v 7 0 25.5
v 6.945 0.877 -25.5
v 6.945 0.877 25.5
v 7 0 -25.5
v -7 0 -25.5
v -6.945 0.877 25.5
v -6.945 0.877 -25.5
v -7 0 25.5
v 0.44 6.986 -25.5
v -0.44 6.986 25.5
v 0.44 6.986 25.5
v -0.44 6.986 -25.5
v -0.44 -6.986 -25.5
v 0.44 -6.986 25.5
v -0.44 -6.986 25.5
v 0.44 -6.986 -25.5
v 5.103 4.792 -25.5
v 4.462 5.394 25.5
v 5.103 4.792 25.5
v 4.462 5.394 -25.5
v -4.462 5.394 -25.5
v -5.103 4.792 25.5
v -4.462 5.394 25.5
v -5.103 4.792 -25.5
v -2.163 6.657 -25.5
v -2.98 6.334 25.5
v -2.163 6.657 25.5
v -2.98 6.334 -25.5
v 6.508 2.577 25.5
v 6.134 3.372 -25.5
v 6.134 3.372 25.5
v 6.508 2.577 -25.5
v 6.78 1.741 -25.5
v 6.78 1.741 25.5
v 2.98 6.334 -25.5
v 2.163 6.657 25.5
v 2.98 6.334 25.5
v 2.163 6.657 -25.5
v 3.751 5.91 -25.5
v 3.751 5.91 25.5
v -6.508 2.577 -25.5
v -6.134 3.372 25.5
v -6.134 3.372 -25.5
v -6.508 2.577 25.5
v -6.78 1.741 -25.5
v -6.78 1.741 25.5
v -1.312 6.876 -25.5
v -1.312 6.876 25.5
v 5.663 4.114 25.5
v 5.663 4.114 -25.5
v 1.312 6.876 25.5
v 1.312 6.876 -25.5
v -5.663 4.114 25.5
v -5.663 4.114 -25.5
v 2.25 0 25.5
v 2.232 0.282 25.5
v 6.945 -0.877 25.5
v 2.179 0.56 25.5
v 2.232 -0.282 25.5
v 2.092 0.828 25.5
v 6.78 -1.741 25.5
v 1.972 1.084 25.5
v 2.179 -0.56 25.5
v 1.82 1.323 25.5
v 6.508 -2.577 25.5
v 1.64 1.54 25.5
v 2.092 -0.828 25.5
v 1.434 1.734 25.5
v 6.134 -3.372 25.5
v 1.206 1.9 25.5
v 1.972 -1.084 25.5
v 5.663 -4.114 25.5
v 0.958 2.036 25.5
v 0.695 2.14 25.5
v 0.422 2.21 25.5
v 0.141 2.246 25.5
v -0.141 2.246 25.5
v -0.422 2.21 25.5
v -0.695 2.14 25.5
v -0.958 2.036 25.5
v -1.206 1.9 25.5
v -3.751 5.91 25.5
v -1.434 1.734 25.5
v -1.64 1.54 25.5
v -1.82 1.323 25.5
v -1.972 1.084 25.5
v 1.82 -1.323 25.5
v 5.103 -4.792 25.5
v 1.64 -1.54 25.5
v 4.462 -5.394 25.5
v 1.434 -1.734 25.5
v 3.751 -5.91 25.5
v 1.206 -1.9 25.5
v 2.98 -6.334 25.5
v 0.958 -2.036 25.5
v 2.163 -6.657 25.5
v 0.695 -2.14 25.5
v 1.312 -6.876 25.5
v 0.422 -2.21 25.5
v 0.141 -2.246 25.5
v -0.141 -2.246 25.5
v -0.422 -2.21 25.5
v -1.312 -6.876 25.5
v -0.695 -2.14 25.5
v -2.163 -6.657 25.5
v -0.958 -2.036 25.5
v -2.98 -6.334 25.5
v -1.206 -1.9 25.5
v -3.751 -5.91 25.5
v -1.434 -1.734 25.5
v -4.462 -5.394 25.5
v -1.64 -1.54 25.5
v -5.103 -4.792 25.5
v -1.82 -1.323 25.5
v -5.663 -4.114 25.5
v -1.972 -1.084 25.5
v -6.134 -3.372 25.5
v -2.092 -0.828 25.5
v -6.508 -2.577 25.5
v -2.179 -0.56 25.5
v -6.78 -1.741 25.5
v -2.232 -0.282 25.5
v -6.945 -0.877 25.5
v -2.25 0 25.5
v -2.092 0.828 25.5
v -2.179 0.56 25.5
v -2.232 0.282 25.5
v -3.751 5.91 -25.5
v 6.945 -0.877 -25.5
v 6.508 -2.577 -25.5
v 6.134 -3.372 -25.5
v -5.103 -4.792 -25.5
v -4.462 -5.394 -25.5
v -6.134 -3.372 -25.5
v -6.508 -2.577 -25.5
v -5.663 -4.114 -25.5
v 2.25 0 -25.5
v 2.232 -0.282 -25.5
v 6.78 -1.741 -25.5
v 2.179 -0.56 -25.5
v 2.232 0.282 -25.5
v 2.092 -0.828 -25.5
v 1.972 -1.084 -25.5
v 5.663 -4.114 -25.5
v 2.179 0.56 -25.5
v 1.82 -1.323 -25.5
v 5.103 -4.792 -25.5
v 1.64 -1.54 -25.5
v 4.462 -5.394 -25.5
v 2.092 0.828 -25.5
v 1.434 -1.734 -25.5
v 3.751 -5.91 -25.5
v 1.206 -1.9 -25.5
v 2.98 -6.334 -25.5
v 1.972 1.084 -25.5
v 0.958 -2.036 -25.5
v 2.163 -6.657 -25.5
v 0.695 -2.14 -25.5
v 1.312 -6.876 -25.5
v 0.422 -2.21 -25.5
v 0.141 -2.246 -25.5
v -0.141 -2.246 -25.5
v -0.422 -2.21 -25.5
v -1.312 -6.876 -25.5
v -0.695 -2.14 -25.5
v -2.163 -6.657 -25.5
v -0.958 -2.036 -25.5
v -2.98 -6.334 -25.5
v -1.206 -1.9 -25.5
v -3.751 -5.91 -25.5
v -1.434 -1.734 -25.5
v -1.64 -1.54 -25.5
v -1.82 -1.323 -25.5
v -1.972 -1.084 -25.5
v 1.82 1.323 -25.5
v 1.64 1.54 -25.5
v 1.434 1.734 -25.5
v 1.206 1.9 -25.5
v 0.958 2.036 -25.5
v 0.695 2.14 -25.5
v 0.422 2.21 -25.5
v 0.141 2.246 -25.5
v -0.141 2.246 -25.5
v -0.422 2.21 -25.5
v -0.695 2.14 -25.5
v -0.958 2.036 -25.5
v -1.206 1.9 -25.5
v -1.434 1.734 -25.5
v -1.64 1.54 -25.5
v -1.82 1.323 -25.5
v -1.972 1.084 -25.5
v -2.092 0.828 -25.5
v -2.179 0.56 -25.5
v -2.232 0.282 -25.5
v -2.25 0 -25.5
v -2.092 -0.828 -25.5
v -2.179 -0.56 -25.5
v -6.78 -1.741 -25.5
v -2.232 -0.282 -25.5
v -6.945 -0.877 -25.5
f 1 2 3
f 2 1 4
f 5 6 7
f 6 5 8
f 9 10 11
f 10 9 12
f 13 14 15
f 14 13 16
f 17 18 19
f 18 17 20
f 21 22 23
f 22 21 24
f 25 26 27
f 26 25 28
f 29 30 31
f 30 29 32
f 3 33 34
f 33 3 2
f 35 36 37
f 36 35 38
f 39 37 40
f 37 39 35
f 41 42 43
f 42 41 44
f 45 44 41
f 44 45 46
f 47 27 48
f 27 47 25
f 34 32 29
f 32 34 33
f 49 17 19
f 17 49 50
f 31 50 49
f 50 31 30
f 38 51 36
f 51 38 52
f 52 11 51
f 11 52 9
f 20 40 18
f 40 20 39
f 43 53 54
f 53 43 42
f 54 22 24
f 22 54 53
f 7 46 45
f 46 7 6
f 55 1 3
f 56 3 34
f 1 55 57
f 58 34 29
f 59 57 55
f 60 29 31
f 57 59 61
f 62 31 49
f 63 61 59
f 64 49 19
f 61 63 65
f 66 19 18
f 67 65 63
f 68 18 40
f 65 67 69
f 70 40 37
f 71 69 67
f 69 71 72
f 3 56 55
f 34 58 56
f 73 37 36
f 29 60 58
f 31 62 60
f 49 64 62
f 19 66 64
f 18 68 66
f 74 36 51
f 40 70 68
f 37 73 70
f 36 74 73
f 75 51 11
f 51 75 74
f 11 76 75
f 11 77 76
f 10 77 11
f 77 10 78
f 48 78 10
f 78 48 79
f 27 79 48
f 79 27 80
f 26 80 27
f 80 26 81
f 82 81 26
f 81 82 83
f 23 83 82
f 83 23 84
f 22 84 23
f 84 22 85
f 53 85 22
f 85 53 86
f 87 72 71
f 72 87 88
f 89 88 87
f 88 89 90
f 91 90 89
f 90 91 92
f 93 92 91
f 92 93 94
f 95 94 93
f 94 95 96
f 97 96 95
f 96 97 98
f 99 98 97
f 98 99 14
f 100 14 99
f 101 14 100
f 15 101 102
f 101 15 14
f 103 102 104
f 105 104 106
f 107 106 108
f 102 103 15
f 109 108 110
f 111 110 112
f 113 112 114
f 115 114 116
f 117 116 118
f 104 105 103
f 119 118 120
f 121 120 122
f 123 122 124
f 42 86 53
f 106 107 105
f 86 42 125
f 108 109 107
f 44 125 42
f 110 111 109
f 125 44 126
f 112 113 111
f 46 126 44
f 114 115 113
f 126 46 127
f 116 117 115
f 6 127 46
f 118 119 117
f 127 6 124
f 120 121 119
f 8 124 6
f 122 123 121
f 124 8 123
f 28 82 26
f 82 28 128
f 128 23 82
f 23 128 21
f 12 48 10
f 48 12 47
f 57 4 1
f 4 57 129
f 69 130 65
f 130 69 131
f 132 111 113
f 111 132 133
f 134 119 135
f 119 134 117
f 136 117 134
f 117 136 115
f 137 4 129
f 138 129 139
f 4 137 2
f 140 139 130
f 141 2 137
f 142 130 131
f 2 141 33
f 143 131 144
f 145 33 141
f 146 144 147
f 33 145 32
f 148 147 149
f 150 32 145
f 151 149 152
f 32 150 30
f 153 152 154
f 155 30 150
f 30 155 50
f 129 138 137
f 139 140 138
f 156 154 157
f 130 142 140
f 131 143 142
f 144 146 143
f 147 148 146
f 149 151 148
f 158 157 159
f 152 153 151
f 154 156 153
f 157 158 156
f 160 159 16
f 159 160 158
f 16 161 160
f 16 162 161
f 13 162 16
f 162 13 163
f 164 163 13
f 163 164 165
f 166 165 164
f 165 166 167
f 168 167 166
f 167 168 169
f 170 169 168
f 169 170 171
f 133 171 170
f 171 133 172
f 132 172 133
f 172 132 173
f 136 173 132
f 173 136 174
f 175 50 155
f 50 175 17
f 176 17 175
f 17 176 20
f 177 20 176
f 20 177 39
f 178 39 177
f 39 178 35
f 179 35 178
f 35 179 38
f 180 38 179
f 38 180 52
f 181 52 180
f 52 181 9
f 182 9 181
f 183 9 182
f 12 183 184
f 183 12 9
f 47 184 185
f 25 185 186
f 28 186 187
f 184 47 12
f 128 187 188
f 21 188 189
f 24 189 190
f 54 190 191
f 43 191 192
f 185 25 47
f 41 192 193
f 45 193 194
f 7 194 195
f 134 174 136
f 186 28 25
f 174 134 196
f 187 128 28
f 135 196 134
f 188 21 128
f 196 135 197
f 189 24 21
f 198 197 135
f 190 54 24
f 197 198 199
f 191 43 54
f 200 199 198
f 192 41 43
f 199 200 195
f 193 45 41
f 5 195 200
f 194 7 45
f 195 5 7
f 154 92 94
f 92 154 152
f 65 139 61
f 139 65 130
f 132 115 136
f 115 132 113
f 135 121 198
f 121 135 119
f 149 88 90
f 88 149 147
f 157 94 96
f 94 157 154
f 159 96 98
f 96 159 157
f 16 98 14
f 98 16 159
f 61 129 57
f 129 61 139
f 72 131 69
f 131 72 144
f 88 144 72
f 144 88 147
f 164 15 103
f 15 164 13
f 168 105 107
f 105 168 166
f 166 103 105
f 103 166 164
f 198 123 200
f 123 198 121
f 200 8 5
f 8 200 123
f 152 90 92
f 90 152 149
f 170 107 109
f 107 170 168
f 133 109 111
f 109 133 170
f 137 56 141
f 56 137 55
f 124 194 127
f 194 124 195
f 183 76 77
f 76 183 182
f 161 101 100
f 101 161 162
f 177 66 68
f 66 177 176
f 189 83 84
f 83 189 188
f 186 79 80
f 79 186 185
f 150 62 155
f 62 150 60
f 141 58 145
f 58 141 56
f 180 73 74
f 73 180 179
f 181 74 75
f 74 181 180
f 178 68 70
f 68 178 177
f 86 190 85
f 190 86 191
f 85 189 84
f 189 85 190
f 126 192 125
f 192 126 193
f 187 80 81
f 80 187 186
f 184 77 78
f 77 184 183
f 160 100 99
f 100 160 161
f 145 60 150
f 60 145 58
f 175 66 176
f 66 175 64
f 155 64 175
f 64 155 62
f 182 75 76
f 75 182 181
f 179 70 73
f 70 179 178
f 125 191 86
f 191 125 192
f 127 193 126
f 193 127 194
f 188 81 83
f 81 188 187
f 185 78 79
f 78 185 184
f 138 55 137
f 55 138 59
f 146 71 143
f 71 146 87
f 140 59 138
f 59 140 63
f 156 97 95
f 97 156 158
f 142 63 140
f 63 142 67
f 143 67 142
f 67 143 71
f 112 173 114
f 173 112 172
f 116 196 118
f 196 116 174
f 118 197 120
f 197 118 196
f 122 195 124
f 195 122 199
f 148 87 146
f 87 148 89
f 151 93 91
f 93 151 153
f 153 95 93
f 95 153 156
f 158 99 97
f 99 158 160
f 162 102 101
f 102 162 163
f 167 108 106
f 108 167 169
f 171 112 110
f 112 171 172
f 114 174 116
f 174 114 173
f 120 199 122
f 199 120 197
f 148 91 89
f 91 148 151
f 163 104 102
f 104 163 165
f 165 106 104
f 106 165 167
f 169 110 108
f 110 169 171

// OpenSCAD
$fn = 50;


difference() {
	union() {
		translate(v = [0, 0, -25.5000000000]) {
			cylinder(h = 51, r = 7.0000000000);
		}
	}
	union() {
		translate(v = [0, 0, -100.0000000000]) {
			cylinder(h = 200, r = 2.2500000000);
		}
	}
}
